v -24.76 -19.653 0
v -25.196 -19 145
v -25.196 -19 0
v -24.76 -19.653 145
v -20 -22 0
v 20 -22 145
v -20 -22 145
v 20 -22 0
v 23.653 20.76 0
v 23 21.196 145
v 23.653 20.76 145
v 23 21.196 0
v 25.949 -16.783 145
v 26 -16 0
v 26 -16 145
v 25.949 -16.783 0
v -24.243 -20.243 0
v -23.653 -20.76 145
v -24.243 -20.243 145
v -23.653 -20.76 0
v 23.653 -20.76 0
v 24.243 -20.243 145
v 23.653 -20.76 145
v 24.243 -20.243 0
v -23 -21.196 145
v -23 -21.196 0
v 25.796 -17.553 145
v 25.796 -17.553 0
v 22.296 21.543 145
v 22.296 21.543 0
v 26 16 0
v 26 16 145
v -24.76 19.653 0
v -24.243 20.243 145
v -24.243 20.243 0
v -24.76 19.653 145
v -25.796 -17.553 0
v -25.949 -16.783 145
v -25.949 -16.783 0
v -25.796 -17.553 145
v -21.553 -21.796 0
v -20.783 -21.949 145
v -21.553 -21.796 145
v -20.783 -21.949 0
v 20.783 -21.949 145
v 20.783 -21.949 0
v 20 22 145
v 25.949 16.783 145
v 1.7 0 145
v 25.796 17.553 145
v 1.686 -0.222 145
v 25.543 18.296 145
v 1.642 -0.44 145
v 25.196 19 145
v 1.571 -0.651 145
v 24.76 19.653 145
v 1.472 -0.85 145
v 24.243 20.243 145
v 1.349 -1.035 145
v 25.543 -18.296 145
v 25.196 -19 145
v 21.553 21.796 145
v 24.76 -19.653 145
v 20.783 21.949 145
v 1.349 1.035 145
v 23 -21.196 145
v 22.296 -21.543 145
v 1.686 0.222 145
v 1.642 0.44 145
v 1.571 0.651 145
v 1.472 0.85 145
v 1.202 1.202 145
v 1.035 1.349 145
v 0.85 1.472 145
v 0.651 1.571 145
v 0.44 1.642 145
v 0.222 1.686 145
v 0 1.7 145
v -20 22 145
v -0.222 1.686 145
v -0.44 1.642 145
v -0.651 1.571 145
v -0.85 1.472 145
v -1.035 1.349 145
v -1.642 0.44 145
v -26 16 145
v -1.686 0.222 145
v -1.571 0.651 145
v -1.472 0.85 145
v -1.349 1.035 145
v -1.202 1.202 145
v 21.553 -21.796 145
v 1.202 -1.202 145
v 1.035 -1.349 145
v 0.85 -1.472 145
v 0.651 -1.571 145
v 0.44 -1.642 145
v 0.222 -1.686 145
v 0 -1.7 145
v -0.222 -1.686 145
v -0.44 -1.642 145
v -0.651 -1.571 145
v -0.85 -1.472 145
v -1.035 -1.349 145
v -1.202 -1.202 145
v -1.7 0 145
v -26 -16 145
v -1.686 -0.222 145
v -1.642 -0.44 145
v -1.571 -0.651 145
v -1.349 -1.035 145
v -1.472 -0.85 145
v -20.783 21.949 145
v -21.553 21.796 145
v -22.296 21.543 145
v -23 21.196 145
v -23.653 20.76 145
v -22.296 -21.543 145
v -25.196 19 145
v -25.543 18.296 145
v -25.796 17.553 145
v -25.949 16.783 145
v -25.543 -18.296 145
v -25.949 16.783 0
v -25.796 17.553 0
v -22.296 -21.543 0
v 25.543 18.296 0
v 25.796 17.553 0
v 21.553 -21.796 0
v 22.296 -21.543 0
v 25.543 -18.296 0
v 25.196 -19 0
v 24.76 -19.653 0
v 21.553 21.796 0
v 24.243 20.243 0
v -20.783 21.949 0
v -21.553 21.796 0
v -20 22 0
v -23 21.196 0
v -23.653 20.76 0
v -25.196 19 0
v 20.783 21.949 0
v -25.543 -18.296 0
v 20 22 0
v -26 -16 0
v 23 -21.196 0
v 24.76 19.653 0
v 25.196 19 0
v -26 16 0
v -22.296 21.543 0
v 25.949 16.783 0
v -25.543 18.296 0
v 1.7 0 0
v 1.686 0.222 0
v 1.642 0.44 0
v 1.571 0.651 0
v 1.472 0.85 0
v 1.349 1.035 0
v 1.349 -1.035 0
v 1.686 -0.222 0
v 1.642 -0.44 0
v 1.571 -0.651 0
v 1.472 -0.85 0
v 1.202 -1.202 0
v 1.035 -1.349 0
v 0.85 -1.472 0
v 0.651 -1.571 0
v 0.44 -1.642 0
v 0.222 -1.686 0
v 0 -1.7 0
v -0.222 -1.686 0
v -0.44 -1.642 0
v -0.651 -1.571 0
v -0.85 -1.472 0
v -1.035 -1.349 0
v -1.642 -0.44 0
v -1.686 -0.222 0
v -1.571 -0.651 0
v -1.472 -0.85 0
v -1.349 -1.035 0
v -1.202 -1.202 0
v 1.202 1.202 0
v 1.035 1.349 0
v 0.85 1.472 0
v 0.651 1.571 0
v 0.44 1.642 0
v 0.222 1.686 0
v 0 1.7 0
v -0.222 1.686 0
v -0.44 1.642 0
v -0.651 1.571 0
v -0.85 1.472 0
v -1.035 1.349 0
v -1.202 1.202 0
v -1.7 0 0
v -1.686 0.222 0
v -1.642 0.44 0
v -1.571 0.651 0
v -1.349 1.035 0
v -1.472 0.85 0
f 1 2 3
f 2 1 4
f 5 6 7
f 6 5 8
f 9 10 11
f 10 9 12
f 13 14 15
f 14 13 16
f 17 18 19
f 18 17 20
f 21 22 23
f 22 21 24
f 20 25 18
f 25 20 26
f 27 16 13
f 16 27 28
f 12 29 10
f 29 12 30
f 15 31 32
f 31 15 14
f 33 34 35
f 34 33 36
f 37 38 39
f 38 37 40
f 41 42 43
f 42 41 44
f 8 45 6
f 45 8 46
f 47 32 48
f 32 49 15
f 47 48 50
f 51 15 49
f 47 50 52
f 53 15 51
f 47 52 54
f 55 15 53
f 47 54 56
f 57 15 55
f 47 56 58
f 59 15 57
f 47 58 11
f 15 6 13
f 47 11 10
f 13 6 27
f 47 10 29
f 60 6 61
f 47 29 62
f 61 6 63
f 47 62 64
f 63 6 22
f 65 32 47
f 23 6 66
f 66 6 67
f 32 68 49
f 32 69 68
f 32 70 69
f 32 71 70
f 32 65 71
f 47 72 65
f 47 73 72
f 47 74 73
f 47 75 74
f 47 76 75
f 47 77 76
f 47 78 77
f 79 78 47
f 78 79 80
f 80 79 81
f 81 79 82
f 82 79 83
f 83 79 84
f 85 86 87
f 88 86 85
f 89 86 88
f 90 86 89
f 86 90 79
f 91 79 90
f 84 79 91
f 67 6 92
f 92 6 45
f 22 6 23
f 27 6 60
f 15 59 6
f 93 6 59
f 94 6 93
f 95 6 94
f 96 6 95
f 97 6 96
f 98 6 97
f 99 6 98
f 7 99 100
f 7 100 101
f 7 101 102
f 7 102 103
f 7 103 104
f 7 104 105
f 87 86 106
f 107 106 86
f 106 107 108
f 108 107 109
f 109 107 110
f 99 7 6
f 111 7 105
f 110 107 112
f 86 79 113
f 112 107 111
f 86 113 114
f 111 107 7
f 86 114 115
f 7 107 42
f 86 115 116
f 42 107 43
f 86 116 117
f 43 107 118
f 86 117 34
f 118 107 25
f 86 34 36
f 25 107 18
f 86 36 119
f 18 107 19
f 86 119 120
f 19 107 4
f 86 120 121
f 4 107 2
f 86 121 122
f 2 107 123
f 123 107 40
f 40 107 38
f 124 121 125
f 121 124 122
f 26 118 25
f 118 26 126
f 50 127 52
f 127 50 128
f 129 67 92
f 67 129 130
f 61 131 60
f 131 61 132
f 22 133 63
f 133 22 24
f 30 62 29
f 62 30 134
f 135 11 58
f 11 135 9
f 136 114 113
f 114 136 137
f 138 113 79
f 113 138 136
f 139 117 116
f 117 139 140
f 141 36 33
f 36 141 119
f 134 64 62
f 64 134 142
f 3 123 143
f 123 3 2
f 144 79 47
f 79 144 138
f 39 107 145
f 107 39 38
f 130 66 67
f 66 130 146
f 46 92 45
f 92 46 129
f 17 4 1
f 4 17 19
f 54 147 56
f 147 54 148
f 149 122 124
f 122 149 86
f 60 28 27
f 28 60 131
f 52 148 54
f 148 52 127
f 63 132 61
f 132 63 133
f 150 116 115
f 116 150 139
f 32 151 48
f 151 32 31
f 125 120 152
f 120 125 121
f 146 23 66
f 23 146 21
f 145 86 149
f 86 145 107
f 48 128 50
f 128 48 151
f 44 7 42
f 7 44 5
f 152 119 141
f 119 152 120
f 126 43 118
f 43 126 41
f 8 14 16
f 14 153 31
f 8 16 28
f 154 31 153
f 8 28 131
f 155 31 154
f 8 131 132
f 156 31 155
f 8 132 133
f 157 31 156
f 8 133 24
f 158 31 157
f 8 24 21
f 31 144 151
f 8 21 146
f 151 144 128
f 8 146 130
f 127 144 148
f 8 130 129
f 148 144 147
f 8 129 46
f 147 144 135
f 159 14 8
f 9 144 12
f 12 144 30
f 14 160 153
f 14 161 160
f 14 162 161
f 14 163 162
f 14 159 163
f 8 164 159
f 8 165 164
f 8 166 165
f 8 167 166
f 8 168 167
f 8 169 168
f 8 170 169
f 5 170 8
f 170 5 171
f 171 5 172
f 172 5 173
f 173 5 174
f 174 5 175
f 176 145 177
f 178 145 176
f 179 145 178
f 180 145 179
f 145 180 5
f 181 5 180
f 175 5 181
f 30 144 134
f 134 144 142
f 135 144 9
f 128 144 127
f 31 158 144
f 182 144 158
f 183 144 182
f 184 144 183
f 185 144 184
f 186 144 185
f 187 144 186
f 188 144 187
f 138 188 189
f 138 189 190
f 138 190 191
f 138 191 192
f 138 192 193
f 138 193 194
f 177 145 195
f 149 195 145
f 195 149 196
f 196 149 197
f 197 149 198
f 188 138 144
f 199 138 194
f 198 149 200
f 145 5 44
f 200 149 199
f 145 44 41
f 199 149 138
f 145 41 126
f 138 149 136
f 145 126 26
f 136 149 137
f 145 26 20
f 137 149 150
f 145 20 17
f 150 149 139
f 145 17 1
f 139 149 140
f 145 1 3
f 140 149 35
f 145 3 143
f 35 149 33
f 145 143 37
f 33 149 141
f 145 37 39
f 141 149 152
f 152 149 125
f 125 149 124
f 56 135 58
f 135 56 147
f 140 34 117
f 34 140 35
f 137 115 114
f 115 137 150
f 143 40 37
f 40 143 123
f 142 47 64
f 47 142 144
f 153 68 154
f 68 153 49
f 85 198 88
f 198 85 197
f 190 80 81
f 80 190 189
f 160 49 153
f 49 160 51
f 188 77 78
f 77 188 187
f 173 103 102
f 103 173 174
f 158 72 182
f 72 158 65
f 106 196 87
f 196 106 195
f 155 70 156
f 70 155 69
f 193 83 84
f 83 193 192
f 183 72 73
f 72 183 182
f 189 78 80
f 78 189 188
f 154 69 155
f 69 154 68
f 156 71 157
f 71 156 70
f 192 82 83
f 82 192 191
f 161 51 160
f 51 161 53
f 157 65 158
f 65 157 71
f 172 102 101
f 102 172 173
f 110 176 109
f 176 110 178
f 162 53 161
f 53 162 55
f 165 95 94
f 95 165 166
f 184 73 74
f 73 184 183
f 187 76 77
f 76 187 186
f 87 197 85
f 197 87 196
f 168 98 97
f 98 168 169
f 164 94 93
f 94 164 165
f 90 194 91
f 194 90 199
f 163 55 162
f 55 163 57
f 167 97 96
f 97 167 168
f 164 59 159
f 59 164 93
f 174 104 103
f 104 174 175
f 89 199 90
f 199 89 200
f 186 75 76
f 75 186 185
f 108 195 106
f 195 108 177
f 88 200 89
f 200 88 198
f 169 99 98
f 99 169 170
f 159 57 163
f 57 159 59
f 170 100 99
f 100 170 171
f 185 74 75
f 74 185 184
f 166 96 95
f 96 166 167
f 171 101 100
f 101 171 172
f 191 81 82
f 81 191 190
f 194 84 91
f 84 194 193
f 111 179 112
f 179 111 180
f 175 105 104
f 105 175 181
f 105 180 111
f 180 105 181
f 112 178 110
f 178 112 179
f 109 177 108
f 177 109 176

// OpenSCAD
// ============================================================================
// Get Me An Alt — Parametric OpenSCAD Module
// Part: PRT-04 — J2–J3 Triangulated Truss Lower Arm Link (145mm) (lower-arm-link)
// Function: Primary vertical lifting link between J2 and J3.
// Target Bounding Box (mm): [52, 44, 145]
// Print Material: PETG | Min Wall: >= 1.6mm | Tolerance: 0.2mm
// ============================================================================
$fn = 48;
part_width = 52;
part_depth = 44;
part_height = 145;
wall_thickness = 3.6;
floor_thickness = 3.6;
corner_radius = 6;
tolerance = 0.2;
m3_clearance_d = 3.4; // M3 screw clearance hole (3.0mm + 2*0.2mm)

module rounded_rect_prism(w, d, h, r) {
  cr = max(0.5, min(r, min(w, d) / 2 - 0.1));
  linear_extrude(height = h)
    offset(r = cr)
      offset(r = -cr)
        square([w, d], center = true);
}

module part_lower_arm_link() {
  difference() {
    rounded_rect_prism(part_width, part_depth, part_height, corner_radius);
    translate([0, 0, -1])
      cylinder(h = part_height + 2, d = m3_clearance_d);
  }
}

part_lower_arm_link();
